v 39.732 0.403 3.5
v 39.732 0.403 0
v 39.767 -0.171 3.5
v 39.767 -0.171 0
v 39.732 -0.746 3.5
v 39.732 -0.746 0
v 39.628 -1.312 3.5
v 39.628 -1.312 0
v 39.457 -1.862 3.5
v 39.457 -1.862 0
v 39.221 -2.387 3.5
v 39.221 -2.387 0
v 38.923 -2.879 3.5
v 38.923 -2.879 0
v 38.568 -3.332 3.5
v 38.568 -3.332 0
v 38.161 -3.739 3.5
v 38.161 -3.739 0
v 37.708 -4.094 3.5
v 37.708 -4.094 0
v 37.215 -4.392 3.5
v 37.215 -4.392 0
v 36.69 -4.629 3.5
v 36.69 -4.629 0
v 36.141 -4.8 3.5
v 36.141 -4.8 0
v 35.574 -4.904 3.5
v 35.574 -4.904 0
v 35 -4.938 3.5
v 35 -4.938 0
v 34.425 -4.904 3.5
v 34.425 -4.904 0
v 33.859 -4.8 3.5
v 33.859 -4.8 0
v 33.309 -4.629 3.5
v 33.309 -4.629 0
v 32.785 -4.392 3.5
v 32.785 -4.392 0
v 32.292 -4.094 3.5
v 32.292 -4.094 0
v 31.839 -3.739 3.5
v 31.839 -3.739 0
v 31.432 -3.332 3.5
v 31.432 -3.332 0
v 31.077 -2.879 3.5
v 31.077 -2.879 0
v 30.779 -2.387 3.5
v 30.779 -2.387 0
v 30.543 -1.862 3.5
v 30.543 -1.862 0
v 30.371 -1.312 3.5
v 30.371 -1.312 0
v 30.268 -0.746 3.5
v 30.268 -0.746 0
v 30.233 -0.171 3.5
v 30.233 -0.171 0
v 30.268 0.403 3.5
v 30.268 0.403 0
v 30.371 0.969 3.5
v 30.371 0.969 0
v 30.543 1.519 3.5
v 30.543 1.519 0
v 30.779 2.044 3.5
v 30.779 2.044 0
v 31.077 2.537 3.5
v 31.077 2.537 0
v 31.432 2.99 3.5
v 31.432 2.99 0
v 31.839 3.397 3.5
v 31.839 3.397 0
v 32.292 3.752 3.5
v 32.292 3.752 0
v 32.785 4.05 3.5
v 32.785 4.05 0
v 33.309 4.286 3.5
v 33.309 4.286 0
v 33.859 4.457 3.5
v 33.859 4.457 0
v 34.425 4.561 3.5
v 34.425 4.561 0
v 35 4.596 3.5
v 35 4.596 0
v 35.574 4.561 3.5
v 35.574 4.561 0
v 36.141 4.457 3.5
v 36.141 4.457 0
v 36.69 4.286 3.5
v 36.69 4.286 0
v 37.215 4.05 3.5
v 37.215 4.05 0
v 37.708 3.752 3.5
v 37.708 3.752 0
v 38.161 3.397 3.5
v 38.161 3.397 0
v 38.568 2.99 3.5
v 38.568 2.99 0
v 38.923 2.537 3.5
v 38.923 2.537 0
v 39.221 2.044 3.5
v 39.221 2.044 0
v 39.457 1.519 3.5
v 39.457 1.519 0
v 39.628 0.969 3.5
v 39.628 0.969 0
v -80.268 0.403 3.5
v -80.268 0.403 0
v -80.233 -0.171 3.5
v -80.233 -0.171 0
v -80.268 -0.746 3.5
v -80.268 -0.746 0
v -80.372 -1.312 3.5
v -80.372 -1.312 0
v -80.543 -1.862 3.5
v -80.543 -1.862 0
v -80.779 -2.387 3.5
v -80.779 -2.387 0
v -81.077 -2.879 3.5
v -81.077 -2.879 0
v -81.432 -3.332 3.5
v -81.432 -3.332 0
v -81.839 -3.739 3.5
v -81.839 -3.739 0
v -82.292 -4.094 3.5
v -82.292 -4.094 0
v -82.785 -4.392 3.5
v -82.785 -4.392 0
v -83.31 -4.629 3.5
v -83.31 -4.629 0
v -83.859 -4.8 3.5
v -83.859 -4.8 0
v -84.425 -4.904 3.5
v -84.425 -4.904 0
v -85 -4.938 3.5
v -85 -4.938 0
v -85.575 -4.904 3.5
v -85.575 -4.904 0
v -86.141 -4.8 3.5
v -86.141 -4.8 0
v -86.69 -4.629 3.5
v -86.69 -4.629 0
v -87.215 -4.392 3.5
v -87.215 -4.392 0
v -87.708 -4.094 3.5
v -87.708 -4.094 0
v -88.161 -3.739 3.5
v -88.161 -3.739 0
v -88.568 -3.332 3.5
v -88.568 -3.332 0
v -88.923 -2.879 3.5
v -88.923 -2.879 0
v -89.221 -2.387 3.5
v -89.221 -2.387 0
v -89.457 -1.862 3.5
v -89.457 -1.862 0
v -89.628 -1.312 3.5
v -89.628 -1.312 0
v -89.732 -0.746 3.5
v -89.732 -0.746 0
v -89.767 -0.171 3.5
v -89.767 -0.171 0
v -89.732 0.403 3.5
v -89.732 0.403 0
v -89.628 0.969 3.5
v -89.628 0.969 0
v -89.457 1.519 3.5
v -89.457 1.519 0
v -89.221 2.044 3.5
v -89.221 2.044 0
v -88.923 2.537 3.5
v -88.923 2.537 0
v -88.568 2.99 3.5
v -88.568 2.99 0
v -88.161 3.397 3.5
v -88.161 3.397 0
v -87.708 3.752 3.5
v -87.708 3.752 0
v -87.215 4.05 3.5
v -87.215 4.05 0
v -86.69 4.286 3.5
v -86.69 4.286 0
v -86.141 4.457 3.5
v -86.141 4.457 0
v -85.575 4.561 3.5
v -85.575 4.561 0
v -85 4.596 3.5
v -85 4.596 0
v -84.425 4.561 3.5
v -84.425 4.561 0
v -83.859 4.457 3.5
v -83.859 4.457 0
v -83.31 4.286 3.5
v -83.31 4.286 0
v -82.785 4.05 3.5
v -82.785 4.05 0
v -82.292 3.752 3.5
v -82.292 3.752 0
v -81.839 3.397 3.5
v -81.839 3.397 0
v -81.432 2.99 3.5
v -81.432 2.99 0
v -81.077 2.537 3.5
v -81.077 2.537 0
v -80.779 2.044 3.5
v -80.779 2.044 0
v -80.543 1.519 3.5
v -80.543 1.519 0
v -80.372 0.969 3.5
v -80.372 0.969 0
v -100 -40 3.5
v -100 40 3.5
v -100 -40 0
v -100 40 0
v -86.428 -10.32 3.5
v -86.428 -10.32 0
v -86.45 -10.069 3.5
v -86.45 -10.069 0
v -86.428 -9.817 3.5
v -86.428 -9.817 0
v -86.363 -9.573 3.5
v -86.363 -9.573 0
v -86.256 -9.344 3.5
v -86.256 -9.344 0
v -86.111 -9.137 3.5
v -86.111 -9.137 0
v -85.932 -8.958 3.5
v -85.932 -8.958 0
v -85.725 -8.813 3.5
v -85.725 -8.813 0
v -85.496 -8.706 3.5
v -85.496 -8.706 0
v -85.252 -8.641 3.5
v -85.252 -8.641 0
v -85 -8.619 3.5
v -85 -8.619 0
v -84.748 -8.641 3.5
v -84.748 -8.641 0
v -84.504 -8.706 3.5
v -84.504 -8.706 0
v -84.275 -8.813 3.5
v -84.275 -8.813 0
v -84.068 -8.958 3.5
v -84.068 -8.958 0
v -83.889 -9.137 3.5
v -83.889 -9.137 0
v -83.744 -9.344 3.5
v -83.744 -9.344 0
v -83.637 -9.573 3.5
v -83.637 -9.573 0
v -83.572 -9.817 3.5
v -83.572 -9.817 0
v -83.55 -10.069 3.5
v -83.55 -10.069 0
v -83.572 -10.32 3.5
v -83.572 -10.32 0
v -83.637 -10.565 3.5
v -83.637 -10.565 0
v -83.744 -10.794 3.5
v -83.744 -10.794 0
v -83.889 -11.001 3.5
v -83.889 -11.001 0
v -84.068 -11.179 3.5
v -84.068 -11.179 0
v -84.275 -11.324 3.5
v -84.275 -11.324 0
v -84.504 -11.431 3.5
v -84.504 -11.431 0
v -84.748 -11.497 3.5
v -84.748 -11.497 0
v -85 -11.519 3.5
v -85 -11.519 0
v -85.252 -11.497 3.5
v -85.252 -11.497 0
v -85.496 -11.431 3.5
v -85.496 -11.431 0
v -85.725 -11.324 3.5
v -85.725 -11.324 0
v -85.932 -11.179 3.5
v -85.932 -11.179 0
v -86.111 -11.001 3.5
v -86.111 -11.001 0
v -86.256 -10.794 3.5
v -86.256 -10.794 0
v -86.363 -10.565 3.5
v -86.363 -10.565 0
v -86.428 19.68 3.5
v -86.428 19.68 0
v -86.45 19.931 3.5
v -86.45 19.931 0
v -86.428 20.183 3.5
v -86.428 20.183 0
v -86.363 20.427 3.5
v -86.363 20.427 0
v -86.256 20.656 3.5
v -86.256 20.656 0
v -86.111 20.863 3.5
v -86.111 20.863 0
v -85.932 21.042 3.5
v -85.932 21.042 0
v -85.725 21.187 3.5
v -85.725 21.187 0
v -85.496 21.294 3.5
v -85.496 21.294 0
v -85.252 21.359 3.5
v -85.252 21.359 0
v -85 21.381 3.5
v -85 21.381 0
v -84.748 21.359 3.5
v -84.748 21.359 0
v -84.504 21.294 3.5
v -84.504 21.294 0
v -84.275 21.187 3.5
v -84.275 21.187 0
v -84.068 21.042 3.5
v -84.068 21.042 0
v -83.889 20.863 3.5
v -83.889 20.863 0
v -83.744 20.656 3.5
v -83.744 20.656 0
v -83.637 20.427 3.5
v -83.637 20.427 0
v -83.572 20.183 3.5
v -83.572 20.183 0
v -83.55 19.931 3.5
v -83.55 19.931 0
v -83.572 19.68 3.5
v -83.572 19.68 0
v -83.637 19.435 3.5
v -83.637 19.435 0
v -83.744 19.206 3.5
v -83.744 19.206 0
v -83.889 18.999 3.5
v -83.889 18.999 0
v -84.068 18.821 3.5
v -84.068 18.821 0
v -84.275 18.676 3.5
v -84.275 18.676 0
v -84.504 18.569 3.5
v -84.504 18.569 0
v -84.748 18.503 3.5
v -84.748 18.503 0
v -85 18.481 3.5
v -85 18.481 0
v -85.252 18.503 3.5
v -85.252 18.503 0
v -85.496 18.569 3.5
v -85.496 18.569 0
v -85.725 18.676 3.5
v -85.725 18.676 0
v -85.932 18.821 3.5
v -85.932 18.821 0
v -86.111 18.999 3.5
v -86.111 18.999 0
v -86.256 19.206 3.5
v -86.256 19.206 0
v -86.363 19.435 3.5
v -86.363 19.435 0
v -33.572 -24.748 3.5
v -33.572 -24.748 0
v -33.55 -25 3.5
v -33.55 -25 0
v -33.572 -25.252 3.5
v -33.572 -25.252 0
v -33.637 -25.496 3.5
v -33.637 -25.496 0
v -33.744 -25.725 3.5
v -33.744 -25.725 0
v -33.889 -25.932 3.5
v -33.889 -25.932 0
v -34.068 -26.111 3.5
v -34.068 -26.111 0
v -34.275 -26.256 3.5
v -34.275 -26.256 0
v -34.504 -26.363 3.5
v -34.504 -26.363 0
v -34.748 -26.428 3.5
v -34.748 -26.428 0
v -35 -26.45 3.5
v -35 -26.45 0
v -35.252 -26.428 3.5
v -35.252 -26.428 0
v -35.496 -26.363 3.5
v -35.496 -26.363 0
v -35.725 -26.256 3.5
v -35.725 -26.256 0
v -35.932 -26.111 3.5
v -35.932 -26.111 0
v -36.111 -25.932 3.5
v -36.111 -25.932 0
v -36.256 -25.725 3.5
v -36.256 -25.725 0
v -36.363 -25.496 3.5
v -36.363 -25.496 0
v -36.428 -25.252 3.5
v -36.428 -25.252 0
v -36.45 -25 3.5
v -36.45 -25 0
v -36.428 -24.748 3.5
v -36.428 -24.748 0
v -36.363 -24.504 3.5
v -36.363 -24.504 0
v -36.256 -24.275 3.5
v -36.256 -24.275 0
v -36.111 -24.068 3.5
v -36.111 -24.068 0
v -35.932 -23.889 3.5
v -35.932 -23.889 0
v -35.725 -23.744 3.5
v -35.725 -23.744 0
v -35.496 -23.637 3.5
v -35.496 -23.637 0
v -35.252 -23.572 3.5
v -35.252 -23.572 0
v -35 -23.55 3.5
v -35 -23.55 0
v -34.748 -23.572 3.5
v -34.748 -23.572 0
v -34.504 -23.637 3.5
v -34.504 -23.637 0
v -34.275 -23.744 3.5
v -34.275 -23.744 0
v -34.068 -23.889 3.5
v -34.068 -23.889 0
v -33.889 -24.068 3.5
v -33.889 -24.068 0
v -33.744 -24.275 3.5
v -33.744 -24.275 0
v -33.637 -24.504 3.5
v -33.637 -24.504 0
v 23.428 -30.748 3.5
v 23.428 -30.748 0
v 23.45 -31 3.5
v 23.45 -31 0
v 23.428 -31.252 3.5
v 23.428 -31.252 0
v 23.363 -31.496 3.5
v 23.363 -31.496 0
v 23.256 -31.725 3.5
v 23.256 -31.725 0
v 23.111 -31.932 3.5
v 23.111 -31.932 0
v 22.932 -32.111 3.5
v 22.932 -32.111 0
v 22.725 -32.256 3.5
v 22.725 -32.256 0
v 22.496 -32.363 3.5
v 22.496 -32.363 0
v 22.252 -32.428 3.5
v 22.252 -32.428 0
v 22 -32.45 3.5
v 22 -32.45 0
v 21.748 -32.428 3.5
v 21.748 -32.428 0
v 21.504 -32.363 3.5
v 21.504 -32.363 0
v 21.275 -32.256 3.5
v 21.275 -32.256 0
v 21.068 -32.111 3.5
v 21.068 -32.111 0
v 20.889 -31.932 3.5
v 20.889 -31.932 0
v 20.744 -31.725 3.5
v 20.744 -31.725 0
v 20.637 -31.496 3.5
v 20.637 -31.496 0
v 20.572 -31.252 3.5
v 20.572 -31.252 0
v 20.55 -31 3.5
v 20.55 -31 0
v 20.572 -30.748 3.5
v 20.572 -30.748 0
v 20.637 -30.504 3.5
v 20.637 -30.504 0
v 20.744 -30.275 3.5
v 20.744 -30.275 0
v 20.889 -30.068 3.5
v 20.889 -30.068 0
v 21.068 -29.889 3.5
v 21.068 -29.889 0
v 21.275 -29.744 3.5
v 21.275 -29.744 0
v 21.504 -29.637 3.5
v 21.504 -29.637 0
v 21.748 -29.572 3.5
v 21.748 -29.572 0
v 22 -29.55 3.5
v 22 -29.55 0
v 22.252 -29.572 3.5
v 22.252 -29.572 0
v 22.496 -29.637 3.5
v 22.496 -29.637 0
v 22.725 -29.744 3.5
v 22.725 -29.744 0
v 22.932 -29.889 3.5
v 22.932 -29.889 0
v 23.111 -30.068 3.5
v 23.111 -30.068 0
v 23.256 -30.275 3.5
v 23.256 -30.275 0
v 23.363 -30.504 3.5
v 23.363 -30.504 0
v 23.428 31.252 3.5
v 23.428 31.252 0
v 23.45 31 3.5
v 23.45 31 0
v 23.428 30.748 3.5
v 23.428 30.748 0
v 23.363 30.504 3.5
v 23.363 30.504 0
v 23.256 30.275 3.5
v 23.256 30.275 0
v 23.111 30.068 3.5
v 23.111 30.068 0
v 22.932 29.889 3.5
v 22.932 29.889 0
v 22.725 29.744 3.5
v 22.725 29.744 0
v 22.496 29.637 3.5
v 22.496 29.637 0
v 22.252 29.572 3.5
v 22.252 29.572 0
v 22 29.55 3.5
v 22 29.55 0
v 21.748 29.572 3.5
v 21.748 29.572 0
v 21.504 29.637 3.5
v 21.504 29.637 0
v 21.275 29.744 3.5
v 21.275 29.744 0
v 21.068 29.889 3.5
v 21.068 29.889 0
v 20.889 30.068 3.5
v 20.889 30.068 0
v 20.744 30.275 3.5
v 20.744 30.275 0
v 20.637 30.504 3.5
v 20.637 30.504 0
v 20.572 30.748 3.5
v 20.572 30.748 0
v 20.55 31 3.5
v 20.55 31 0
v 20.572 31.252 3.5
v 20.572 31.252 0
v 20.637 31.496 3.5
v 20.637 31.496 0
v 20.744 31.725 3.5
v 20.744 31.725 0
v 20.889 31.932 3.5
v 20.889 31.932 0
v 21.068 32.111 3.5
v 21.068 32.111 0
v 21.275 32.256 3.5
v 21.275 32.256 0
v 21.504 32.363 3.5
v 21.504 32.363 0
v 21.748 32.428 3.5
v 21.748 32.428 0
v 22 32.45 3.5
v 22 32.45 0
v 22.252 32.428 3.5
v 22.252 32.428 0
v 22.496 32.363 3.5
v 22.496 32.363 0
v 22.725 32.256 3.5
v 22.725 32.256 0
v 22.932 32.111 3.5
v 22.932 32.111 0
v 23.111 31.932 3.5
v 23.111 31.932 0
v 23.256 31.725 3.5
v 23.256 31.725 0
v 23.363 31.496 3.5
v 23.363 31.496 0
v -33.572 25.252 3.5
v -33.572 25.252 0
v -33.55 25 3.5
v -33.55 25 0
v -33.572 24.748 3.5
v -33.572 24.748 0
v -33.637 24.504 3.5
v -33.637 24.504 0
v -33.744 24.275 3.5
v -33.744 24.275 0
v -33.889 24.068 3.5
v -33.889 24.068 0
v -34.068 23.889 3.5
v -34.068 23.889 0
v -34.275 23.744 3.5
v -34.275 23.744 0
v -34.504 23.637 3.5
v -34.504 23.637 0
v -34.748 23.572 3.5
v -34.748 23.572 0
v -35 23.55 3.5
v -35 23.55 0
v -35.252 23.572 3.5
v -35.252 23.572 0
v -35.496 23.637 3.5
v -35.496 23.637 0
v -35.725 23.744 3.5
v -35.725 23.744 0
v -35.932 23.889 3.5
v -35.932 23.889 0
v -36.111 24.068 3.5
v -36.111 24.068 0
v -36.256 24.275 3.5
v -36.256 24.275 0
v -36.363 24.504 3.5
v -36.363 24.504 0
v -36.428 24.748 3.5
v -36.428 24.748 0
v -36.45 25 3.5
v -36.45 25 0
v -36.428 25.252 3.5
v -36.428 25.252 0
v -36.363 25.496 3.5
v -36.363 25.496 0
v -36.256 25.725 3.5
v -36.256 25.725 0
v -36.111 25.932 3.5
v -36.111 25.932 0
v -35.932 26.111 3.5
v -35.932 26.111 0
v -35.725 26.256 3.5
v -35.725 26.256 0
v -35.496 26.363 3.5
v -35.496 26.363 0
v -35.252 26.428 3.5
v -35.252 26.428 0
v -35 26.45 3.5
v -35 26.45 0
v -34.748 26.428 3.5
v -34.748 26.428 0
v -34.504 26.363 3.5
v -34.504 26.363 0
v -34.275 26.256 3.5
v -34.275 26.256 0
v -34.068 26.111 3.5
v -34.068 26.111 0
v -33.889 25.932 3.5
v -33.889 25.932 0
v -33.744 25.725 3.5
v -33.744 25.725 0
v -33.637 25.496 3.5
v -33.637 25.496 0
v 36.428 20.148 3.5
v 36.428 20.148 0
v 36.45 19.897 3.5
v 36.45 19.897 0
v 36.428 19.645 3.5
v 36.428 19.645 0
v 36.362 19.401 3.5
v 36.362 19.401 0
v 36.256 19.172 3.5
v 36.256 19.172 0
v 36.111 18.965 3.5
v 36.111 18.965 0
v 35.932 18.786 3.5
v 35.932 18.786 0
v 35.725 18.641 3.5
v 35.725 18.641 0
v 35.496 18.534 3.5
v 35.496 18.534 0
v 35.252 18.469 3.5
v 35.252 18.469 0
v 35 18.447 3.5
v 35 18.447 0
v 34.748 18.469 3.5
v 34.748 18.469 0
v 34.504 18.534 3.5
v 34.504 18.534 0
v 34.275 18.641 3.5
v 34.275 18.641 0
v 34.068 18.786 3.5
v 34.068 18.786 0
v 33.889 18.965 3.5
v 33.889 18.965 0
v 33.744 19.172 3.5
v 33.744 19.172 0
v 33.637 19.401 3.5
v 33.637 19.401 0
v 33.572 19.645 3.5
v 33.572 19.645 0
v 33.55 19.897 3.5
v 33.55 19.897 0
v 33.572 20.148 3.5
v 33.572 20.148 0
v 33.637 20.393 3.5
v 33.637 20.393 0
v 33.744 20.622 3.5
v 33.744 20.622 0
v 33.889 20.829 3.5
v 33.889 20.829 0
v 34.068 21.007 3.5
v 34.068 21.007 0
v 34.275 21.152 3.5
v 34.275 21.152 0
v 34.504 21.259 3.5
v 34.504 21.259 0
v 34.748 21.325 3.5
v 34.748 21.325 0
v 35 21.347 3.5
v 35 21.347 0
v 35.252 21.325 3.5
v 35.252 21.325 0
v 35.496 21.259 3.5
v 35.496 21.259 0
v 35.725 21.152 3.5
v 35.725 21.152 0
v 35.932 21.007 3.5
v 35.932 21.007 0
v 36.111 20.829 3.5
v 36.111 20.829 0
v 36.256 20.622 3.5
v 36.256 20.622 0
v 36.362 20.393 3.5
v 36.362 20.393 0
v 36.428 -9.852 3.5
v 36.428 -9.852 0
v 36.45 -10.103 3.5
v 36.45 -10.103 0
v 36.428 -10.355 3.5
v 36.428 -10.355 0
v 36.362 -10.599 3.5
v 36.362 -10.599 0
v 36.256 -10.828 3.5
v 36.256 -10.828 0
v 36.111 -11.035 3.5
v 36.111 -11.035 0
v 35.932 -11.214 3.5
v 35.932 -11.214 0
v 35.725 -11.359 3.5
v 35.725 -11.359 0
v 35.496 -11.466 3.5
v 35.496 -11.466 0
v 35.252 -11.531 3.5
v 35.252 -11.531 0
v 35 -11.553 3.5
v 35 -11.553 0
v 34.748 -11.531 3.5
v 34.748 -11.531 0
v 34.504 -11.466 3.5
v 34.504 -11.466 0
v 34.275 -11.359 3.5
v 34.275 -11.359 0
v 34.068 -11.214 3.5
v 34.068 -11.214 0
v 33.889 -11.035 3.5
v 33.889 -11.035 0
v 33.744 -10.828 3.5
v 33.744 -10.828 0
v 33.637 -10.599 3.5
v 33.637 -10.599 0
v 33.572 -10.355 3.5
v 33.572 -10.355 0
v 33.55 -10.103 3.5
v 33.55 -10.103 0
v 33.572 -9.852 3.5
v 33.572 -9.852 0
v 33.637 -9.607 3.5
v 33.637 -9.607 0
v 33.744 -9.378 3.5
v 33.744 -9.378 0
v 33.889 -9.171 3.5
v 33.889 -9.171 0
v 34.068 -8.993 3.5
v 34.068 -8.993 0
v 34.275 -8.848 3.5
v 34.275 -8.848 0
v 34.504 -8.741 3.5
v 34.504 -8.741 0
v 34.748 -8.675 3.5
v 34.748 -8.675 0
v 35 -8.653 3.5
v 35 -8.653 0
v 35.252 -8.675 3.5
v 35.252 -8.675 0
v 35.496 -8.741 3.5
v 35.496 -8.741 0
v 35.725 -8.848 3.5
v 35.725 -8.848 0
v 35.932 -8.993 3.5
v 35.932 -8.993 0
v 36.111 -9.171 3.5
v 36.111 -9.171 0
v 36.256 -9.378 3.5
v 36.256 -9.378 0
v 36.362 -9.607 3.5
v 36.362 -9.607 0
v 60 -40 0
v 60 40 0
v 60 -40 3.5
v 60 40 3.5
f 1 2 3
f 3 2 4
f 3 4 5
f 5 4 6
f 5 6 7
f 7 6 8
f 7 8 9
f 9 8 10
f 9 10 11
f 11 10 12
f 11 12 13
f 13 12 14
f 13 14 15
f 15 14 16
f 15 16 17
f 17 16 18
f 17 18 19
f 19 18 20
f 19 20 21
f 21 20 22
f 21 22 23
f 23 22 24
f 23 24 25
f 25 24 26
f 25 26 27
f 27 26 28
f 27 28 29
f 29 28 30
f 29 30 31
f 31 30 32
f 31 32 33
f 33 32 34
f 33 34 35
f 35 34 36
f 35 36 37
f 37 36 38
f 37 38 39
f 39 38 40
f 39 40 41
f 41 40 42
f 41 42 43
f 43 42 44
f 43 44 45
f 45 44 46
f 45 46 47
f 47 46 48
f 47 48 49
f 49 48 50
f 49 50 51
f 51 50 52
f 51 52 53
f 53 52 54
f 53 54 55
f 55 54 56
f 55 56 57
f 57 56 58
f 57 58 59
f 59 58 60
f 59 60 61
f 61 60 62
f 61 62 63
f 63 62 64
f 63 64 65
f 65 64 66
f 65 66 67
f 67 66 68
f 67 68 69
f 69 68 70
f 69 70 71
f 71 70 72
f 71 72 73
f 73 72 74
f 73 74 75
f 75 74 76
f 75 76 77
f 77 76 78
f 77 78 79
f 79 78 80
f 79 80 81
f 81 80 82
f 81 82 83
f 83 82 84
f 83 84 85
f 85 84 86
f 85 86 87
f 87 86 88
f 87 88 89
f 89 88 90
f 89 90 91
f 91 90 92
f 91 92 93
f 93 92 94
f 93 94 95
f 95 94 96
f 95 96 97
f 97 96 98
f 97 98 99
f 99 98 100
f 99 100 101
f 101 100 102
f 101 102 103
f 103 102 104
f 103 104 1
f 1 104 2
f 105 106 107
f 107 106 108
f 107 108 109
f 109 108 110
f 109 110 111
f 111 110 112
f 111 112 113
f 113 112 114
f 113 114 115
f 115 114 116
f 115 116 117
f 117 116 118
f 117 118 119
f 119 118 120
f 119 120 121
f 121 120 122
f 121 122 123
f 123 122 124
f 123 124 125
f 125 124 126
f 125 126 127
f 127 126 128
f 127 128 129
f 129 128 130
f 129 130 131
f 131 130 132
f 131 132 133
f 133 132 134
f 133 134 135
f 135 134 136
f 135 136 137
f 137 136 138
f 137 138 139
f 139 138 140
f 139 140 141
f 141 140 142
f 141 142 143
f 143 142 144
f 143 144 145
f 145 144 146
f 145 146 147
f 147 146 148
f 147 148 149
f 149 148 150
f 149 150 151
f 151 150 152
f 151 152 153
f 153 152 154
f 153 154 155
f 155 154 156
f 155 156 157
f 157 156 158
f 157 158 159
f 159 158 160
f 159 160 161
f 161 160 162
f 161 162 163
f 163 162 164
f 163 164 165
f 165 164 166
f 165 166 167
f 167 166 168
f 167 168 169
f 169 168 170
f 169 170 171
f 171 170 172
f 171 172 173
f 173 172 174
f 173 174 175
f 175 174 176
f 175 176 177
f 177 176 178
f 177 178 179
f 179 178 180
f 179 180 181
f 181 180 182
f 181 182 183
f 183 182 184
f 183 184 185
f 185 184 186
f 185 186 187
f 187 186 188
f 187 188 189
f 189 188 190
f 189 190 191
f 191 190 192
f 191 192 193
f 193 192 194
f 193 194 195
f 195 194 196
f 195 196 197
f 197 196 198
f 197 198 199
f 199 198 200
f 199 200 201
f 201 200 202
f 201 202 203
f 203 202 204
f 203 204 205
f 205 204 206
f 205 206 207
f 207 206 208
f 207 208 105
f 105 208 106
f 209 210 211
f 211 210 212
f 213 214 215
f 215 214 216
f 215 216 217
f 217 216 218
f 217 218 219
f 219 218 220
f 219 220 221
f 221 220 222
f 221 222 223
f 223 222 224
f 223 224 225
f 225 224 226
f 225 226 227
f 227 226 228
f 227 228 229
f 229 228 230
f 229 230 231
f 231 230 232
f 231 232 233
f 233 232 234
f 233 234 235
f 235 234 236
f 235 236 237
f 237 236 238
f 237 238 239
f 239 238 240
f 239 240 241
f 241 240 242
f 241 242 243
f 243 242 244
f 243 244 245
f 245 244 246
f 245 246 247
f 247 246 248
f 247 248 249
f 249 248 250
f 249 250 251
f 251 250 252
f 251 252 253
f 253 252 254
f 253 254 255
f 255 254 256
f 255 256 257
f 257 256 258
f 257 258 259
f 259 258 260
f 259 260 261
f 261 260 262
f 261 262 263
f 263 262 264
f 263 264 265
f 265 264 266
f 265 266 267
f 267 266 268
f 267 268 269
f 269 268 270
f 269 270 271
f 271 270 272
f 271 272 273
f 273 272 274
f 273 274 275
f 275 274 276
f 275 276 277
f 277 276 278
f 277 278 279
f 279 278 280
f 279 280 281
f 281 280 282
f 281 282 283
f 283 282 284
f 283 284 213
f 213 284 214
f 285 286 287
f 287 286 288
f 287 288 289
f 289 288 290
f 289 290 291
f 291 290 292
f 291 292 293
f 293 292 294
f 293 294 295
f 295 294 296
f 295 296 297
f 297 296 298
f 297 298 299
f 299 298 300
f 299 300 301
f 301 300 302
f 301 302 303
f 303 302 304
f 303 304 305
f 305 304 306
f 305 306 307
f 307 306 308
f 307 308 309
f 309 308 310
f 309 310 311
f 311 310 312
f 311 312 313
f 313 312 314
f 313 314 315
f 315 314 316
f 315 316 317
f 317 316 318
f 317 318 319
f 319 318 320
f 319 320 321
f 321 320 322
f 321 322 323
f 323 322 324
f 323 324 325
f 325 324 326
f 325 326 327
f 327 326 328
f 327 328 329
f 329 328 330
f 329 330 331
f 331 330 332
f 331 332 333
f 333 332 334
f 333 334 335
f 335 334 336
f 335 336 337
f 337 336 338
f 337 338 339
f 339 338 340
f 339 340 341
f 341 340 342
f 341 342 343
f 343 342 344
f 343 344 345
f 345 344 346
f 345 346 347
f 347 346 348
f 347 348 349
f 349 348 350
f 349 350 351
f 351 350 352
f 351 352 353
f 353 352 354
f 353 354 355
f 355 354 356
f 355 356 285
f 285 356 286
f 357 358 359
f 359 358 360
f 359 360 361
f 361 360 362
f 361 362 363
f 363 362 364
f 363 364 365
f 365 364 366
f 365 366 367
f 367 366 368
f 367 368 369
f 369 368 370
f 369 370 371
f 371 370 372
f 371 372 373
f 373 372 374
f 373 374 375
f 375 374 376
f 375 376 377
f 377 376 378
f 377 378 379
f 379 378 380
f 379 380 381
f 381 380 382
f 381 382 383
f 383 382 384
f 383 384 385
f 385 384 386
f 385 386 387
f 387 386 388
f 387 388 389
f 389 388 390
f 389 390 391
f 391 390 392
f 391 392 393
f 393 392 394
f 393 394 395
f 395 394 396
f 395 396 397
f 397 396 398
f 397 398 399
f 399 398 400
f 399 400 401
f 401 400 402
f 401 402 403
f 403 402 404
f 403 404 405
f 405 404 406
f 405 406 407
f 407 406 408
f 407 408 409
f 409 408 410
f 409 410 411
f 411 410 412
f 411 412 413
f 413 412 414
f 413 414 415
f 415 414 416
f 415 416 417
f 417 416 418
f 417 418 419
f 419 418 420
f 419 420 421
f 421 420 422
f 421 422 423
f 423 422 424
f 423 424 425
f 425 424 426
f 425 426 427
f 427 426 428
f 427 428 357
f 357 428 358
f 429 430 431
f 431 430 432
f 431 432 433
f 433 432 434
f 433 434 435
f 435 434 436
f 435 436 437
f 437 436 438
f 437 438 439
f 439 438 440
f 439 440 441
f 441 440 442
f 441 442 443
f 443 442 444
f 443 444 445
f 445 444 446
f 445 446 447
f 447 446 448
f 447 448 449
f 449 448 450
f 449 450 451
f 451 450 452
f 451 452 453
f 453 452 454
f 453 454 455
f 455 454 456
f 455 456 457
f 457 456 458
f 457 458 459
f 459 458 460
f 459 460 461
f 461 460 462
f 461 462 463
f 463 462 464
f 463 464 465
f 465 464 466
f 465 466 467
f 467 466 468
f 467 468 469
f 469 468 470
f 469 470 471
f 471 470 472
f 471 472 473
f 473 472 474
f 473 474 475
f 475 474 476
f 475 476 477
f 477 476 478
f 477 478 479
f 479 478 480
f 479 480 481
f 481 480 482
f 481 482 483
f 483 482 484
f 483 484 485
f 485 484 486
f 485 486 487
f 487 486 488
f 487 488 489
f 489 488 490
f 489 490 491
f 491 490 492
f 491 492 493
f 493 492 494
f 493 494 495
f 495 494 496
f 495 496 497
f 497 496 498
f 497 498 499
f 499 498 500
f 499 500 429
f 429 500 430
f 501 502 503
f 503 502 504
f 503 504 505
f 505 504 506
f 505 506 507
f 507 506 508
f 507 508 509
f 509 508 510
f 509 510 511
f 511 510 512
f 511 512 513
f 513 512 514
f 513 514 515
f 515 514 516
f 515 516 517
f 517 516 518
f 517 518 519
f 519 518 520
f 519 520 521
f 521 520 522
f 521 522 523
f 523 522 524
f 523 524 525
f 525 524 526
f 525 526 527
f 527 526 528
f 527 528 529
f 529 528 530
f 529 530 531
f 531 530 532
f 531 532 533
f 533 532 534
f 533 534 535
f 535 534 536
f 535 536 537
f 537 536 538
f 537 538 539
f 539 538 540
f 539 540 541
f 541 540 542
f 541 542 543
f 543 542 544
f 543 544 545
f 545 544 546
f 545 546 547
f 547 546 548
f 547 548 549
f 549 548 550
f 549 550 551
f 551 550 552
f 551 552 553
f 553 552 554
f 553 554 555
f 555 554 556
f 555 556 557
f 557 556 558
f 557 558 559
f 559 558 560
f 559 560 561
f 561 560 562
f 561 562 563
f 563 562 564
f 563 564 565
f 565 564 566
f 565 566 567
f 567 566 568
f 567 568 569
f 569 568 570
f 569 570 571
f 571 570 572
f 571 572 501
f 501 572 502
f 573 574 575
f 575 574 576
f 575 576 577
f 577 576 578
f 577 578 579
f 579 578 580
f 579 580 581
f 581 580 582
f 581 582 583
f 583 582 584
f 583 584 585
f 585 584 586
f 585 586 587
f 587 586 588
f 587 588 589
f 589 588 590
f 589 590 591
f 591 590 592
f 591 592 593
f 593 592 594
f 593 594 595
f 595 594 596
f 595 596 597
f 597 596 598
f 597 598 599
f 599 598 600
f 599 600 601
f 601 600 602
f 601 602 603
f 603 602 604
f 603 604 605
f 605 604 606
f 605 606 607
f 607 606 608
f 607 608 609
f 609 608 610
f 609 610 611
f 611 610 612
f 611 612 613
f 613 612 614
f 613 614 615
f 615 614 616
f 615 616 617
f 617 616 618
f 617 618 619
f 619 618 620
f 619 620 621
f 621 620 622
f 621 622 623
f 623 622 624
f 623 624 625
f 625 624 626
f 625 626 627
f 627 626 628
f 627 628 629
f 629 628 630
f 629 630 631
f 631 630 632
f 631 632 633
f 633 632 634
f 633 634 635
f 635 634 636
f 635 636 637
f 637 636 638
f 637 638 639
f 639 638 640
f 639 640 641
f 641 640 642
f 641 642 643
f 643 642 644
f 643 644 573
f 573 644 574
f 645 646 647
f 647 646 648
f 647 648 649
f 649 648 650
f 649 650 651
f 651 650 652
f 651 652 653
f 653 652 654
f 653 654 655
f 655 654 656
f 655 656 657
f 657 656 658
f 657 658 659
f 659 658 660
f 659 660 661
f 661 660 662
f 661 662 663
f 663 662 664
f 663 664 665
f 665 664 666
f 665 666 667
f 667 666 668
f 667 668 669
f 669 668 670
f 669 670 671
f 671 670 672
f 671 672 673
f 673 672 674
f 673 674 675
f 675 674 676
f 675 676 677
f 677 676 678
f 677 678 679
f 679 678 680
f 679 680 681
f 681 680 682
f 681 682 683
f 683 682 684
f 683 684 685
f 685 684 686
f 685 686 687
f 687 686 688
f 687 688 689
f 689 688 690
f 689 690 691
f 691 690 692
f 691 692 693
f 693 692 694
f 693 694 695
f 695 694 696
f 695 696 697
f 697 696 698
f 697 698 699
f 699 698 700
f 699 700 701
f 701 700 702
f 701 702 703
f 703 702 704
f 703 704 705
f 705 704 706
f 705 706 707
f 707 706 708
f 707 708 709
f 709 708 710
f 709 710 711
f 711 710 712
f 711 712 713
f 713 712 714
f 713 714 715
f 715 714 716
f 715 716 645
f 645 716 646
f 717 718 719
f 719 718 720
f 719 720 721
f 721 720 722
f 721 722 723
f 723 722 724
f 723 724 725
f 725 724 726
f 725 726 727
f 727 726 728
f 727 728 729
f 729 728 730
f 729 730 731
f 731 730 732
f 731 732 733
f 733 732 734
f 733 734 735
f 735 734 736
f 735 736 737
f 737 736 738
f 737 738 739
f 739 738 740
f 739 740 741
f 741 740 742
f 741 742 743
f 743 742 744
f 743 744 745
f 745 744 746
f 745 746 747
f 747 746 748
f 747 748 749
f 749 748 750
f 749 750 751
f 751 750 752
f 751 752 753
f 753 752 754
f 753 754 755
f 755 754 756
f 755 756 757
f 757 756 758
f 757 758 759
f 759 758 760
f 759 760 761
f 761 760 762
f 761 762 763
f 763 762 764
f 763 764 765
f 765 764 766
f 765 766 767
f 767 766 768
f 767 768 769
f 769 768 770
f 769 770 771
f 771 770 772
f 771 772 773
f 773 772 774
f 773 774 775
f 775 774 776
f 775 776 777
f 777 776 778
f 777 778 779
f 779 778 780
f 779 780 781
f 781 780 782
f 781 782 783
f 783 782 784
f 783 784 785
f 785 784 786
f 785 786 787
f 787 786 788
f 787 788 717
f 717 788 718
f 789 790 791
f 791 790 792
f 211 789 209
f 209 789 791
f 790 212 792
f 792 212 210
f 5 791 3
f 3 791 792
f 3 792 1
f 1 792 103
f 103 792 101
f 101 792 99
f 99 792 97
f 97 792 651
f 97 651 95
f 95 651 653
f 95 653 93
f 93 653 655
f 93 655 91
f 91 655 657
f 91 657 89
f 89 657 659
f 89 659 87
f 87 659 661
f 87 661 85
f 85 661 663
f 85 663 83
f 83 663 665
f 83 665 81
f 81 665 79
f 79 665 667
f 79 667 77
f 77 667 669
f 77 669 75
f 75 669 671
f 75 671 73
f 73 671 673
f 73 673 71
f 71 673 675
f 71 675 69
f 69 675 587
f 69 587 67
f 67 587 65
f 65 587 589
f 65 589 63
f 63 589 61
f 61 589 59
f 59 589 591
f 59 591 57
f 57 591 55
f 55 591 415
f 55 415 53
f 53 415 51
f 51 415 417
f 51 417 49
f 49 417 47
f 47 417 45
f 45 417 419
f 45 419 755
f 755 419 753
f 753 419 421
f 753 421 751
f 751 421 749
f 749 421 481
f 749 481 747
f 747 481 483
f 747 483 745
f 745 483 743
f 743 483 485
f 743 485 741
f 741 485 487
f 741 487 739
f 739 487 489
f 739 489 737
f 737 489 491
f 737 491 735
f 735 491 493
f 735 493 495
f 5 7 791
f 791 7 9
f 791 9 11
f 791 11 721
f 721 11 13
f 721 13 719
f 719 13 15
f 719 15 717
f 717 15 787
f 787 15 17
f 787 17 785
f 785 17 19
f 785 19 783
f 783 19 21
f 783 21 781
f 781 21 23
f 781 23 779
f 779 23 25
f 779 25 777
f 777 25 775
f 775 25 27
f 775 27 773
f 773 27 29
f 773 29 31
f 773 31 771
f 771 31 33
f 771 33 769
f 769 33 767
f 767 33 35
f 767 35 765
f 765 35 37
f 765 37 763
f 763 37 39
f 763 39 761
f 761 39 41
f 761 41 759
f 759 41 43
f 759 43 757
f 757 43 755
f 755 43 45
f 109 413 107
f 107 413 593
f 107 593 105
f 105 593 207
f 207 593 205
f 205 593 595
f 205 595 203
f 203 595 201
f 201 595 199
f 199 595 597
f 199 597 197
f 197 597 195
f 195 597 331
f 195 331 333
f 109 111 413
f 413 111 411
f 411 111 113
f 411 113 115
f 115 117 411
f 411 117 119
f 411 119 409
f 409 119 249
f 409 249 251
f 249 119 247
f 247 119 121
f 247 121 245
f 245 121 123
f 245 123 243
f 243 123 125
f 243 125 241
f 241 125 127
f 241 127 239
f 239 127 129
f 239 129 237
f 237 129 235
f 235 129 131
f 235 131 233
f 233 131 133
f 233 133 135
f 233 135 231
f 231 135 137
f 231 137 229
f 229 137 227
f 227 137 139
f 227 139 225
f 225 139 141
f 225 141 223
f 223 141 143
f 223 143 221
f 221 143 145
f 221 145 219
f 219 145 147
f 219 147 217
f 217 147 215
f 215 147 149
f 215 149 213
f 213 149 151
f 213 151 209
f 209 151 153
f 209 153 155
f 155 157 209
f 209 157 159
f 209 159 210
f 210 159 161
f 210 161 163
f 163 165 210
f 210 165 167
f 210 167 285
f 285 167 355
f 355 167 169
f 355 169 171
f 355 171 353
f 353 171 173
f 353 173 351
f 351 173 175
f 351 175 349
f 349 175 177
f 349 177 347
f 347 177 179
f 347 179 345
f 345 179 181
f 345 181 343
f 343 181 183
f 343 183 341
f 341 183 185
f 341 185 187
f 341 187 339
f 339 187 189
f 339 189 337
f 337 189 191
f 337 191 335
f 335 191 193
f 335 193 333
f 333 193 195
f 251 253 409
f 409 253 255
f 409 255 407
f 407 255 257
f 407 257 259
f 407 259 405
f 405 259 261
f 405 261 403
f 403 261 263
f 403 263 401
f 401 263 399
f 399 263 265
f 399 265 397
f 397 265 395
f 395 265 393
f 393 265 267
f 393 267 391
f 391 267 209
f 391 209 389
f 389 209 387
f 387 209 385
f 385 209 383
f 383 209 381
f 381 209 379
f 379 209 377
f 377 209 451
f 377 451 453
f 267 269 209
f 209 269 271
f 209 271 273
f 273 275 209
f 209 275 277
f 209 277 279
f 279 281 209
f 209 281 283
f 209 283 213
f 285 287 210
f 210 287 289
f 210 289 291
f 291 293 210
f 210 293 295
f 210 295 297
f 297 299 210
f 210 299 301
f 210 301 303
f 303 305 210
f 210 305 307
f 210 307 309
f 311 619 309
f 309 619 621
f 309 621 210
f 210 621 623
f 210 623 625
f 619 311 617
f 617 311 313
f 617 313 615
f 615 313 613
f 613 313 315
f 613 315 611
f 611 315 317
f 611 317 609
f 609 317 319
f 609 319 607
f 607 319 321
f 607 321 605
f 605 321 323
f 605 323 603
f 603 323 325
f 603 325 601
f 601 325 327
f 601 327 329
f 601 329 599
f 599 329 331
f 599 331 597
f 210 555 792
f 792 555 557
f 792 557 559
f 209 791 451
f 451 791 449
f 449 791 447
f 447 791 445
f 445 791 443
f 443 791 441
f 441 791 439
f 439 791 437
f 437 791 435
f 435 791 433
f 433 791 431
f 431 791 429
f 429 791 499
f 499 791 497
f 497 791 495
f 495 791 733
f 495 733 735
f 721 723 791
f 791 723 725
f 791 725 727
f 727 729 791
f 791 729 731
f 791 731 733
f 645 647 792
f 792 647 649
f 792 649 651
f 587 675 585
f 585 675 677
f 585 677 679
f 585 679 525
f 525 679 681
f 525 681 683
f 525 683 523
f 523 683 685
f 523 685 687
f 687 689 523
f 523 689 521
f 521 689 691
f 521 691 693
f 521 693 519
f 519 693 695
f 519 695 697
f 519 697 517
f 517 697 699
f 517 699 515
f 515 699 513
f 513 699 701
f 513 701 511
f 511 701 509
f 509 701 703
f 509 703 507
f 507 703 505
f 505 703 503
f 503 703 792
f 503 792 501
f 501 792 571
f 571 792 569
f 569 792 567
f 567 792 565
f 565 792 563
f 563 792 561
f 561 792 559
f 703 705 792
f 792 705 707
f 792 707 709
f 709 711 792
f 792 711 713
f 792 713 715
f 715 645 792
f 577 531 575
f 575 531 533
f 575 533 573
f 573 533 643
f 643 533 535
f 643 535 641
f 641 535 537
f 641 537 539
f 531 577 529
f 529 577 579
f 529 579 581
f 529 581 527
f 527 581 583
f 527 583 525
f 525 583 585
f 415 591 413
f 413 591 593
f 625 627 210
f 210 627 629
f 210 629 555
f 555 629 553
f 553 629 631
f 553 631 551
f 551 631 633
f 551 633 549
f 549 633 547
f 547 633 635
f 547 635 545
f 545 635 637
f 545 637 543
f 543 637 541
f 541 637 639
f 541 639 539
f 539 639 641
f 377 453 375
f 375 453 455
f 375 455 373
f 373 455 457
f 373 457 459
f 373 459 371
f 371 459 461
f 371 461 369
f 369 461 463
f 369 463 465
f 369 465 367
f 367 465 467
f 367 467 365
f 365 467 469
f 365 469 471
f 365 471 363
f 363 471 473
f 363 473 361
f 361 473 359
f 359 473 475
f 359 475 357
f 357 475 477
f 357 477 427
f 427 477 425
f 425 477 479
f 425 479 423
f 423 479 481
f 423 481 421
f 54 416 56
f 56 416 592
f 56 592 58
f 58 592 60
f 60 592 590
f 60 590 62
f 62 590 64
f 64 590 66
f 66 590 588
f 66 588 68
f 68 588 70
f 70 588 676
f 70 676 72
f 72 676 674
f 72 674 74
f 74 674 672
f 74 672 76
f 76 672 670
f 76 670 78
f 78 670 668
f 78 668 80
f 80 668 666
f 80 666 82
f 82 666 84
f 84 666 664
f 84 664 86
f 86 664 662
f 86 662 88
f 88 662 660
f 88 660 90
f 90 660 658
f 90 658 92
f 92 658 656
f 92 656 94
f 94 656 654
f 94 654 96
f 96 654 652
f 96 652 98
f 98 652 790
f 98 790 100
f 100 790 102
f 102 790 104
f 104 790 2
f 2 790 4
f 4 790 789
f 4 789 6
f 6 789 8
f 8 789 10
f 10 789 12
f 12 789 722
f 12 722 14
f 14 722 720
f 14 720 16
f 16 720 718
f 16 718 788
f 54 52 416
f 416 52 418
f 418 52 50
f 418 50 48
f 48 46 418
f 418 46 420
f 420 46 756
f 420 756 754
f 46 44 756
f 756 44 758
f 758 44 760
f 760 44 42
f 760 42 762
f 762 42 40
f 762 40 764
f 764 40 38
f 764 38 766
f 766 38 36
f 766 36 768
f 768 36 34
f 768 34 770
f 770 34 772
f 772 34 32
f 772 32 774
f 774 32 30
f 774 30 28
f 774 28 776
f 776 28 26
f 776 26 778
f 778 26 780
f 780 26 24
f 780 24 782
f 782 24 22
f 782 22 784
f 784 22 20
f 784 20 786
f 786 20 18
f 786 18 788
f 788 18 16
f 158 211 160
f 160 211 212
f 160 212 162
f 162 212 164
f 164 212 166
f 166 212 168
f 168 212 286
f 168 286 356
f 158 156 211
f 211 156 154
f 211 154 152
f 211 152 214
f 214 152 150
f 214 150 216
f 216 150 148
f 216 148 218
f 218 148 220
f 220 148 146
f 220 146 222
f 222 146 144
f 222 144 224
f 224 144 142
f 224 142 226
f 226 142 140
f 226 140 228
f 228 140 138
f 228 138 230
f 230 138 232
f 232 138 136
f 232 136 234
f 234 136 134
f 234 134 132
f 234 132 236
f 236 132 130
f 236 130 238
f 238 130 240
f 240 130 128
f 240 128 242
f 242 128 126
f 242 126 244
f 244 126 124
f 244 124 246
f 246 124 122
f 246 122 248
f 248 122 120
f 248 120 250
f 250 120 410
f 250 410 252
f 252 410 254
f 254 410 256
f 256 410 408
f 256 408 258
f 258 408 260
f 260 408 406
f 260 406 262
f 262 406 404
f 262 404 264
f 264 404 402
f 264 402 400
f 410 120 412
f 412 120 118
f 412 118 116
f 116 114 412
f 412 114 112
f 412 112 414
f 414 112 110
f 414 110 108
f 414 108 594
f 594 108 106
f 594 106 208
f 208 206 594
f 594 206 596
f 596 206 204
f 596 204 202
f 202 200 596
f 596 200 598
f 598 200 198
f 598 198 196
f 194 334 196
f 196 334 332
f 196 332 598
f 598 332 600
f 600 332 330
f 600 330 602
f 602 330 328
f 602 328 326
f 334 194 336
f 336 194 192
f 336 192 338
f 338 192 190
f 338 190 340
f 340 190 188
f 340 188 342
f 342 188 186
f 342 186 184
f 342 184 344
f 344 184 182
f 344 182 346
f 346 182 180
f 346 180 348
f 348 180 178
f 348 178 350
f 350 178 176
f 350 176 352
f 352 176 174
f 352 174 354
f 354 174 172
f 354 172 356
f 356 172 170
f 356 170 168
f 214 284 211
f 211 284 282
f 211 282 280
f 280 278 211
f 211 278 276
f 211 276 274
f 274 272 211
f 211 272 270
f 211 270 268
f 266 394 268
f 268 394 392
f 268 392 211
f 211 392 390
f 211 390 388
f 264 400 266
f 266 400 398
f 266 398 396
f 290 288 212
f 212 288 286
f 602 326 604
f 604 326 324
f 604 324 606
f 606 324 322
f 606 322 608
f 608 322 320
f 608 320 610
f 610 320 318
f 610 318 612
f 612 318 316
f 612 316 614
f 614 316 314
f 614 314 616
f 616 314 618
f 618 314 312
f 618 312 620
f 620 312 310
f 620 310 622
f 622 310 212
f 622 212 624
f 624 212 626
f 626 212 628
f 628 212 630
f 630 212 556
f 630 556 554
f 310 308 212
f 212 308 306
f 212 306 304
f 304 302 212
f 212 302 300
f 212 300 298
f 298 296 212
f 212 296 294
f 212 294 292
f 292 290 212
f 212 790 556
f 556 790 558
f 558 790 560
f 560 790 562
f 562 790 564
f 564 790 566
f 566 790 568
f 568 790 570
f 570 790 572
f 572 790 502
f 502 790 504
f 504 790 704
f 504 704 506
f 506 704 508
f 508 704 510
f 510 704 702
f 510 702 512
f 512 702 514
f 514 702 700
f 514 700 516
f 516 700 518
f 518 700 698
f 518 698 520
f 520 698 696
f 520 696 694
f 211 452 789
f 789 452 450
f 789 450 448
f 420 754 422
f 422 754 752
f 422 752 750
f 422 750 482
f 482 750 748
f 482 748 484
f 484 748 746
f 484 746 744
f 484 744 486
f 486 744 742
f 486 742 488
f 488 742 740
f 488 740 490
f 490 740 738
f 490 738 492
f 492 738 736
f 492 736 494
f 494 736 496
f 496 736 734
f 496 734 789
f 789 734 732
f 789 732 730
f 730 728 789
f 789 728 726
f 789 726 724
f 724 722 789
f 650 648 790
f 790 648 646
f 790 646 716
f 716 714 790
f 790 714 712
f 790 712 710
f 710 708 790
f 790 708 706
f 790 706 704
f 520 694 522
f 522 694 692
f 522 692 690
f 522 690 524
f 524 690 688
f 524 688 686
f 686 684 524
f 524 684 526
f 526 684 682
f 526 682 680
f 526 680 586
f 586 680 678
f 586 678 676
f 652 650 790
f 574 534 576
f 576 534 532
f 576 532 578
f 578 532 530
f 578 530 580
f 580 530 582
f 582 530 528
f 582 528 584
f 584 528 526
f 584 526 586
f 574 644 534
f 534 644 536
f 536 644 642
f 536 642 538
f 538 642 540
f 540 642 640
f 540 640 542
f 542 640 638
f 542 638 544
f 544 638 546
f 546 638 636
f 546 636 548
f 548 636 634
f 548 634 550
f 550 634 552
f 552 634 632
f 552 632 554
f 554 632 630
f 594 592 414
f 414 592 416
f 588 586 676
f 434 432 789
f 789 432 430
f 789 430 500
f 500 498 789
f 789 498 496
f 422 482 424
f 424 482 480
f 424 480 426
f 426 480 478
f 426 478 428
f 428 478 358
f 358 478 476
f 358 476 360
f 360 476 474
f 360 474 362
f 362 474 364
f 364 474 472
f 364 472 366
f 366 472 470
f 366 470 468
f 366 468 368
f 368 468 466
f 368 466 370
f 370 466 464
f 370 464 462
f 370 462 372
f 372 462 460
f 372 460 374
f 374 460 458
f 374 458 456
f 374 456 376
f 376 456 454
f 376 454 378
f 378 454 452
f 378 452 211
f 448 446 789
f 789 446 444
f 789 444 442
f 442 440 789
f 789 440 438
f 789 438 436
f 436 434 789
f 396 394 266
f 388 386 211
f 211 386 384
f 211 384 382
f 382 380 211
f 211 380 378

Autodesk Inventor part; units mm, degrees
ref_plane "YZ Plane" through (0, 0, 0) normal (1, 0, 0) x (0, 1, 0)
ref_plane "XZ Plane" through (0, 0, 0) normal (0, 1, 0) x (-1, 0, 0)
ref_plane "XY Plane" through (0, 0, 0) normal (0, 0, 1) x (1, 0, 0)
sketch "Sketch2" plane through (0, 0, 0) normal (0, 0, 1) x (1, 0, 0)
  line L0 (40, -40) -> (-70, -40)
  line L1 (-70, -40) -> (-70, 40)
  line L2 (-70, 40) -> (40, 40)
  circle A0 centre (-35, -25) radius 1 projected
  circle A1 centre (-35, -25) radius 1.45
  circle A2 centre (22, -31) radius 1 projected
  circle A3 centre (22, -31) radius 1.45
  circle A4 centre (22, 31) radius 1 projected
  circle A5 centre (22, 31) radius 1.45
  circle A6 centre (-35, 25) radius 1 projected
  circle A7 centre (-35, 25) radius 1.45
  line L3 (59.9998, -0.0003) -> (34.9998, -0.0003)
  line L4 (34.9998, -0.0003) -> (34.9998, -10.1033)
  line L5 (34.9998, -0.0003) -> (34.9998, 19.8967)
  circle A8 centre (34.9998, -10.1033) radius 1.45
  circle A9 centre (34.9998, 19.8967) radius 1.45
  line L6 (-60, 0) -> (-60, -10.103)
  line L7 (-60, -10.103) -> (-60, 0)
  line L8 (-60, 0) -> (-60, 19.897)
  circle A10 centre (-60, 19.897) radius 1.45
  circle A11 centre (-60, -10.103) radius 1.45
  line L9 (40, -40) -> (60, -40)
  line L10 (60, -40) -> (60, 40)
  line L11 (60, 40) -> (40, 40)
  line L12 (60, -40) -> (60, 0)
  line L13 (-70, 0) -> (-60, 0)
  point P0 (0, 0)
  dimension "d1" = 44.721
  dimension "d2" = 110
  dimension "d3" = 80
  dimension "d4" = 2.9
  dimension "d5" = 2.9
  dimension "d6" = 2.9
  dimension "d7" = 2.9
  dimension "d8" = 25
  dimension "d9" = 10.103
  dimension "d11" = 19.897
  dimension "d12" = 2.9
  dimension "d13" = 2.9
  dimension "d19" = 2.9
  dimension "d20" = 2.9
  dimension "d21" = 20
  dimension "d22" = 10
extrude "Extrusion1" add sketch "Sketch2" along normal blind 3.5 contours A10 | A11 | L0 L1 L2 L11 L10 L9
sketch "Sketch3" plane through (0, 0, 0) normal (0, 0, -1) x (-1, 0, 0)
  line L0 (70, 40) -> (70, -40) projected
  line L1 (70, 40) -> (100, 40)
  line L2 (100, 40) -> (100, -40)
  line L3 (100, -40) -> (70, -40)
  line L4 (70, -40) -> (70, 40)
  circle A0 centre (85, 19.9314) radius 1.45
  circle A1 centre (85, -10.0686) radius 1.45
  point P0 (0, 0)
  dimension "d23" = 30
  dimension "d25" = 2.9
  dimension "d26" = 2.9
extrude "Extrusion2" add sketch "Sketch3" against normal up to surface (3.5 mm away)
sketch "Sketch4" plane through (0, 0, 3.5) normal (0, 0, 1) x (1, 0, 0)
  circle A0 centre (34.9998, -10.1033) radius 1.45 projected
  circle A1 centre (34.9998, -0.1713) radius 4.767
  circle A2 centre (-85, -10.0686) radius 1.45 projected
  circle A3 centre (-85, -0.1713) radius 4.767
  point P0 (0, 0)
  dimension "d31" = 9.534
extrude "Extrusion3" cut sketch "Sketch4" against normal up to surface (3.5 mm away) contours A1 | A3
properties part number "lidar_plate"
